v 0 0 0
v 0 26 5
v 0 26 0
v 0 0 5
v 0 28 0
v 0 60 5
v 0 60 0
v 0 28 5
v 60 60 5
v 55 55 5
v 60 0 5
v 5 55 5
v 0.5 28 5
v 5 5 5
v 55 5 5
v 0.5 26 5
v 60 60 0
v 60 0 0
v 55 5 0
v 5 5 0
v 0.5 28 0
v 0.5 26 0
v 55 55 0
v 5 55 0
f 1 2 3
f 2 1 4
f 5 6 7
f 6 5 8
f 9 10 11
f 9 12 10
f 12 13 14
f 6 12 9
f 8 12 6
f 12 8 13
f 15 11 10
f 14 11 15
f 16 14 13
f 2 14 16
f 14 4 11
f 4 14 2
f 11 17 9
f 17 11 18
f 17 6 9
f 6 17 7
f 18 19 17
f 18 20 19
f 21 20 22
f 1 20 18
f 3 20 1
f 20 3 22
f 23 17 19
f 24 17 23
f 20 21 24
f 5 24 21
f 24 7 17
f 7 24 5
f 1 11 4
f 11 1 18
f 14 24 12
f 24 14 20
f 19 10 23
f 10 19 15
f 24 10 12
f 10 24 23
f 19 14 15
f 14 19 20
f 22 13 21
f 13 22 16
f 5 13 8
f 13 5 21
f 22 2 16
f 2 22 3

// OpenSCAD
// Test square
//
// Generate STL using OpenSCAD:
//   openscad square.scad -o square.stl

square_width = 5;
square_size = 60;
square_height = 5;

difference() {
  cube([square_size, square_size, square_height]);
  translate([square_width, square_width, -1])
    cube([square_size-2*square_width, square_size-2*square_width, square_height+2]);
  translate([-.5, square_size/2 - 4, -1])
    cube([1, 2, square_height+2]);
}
